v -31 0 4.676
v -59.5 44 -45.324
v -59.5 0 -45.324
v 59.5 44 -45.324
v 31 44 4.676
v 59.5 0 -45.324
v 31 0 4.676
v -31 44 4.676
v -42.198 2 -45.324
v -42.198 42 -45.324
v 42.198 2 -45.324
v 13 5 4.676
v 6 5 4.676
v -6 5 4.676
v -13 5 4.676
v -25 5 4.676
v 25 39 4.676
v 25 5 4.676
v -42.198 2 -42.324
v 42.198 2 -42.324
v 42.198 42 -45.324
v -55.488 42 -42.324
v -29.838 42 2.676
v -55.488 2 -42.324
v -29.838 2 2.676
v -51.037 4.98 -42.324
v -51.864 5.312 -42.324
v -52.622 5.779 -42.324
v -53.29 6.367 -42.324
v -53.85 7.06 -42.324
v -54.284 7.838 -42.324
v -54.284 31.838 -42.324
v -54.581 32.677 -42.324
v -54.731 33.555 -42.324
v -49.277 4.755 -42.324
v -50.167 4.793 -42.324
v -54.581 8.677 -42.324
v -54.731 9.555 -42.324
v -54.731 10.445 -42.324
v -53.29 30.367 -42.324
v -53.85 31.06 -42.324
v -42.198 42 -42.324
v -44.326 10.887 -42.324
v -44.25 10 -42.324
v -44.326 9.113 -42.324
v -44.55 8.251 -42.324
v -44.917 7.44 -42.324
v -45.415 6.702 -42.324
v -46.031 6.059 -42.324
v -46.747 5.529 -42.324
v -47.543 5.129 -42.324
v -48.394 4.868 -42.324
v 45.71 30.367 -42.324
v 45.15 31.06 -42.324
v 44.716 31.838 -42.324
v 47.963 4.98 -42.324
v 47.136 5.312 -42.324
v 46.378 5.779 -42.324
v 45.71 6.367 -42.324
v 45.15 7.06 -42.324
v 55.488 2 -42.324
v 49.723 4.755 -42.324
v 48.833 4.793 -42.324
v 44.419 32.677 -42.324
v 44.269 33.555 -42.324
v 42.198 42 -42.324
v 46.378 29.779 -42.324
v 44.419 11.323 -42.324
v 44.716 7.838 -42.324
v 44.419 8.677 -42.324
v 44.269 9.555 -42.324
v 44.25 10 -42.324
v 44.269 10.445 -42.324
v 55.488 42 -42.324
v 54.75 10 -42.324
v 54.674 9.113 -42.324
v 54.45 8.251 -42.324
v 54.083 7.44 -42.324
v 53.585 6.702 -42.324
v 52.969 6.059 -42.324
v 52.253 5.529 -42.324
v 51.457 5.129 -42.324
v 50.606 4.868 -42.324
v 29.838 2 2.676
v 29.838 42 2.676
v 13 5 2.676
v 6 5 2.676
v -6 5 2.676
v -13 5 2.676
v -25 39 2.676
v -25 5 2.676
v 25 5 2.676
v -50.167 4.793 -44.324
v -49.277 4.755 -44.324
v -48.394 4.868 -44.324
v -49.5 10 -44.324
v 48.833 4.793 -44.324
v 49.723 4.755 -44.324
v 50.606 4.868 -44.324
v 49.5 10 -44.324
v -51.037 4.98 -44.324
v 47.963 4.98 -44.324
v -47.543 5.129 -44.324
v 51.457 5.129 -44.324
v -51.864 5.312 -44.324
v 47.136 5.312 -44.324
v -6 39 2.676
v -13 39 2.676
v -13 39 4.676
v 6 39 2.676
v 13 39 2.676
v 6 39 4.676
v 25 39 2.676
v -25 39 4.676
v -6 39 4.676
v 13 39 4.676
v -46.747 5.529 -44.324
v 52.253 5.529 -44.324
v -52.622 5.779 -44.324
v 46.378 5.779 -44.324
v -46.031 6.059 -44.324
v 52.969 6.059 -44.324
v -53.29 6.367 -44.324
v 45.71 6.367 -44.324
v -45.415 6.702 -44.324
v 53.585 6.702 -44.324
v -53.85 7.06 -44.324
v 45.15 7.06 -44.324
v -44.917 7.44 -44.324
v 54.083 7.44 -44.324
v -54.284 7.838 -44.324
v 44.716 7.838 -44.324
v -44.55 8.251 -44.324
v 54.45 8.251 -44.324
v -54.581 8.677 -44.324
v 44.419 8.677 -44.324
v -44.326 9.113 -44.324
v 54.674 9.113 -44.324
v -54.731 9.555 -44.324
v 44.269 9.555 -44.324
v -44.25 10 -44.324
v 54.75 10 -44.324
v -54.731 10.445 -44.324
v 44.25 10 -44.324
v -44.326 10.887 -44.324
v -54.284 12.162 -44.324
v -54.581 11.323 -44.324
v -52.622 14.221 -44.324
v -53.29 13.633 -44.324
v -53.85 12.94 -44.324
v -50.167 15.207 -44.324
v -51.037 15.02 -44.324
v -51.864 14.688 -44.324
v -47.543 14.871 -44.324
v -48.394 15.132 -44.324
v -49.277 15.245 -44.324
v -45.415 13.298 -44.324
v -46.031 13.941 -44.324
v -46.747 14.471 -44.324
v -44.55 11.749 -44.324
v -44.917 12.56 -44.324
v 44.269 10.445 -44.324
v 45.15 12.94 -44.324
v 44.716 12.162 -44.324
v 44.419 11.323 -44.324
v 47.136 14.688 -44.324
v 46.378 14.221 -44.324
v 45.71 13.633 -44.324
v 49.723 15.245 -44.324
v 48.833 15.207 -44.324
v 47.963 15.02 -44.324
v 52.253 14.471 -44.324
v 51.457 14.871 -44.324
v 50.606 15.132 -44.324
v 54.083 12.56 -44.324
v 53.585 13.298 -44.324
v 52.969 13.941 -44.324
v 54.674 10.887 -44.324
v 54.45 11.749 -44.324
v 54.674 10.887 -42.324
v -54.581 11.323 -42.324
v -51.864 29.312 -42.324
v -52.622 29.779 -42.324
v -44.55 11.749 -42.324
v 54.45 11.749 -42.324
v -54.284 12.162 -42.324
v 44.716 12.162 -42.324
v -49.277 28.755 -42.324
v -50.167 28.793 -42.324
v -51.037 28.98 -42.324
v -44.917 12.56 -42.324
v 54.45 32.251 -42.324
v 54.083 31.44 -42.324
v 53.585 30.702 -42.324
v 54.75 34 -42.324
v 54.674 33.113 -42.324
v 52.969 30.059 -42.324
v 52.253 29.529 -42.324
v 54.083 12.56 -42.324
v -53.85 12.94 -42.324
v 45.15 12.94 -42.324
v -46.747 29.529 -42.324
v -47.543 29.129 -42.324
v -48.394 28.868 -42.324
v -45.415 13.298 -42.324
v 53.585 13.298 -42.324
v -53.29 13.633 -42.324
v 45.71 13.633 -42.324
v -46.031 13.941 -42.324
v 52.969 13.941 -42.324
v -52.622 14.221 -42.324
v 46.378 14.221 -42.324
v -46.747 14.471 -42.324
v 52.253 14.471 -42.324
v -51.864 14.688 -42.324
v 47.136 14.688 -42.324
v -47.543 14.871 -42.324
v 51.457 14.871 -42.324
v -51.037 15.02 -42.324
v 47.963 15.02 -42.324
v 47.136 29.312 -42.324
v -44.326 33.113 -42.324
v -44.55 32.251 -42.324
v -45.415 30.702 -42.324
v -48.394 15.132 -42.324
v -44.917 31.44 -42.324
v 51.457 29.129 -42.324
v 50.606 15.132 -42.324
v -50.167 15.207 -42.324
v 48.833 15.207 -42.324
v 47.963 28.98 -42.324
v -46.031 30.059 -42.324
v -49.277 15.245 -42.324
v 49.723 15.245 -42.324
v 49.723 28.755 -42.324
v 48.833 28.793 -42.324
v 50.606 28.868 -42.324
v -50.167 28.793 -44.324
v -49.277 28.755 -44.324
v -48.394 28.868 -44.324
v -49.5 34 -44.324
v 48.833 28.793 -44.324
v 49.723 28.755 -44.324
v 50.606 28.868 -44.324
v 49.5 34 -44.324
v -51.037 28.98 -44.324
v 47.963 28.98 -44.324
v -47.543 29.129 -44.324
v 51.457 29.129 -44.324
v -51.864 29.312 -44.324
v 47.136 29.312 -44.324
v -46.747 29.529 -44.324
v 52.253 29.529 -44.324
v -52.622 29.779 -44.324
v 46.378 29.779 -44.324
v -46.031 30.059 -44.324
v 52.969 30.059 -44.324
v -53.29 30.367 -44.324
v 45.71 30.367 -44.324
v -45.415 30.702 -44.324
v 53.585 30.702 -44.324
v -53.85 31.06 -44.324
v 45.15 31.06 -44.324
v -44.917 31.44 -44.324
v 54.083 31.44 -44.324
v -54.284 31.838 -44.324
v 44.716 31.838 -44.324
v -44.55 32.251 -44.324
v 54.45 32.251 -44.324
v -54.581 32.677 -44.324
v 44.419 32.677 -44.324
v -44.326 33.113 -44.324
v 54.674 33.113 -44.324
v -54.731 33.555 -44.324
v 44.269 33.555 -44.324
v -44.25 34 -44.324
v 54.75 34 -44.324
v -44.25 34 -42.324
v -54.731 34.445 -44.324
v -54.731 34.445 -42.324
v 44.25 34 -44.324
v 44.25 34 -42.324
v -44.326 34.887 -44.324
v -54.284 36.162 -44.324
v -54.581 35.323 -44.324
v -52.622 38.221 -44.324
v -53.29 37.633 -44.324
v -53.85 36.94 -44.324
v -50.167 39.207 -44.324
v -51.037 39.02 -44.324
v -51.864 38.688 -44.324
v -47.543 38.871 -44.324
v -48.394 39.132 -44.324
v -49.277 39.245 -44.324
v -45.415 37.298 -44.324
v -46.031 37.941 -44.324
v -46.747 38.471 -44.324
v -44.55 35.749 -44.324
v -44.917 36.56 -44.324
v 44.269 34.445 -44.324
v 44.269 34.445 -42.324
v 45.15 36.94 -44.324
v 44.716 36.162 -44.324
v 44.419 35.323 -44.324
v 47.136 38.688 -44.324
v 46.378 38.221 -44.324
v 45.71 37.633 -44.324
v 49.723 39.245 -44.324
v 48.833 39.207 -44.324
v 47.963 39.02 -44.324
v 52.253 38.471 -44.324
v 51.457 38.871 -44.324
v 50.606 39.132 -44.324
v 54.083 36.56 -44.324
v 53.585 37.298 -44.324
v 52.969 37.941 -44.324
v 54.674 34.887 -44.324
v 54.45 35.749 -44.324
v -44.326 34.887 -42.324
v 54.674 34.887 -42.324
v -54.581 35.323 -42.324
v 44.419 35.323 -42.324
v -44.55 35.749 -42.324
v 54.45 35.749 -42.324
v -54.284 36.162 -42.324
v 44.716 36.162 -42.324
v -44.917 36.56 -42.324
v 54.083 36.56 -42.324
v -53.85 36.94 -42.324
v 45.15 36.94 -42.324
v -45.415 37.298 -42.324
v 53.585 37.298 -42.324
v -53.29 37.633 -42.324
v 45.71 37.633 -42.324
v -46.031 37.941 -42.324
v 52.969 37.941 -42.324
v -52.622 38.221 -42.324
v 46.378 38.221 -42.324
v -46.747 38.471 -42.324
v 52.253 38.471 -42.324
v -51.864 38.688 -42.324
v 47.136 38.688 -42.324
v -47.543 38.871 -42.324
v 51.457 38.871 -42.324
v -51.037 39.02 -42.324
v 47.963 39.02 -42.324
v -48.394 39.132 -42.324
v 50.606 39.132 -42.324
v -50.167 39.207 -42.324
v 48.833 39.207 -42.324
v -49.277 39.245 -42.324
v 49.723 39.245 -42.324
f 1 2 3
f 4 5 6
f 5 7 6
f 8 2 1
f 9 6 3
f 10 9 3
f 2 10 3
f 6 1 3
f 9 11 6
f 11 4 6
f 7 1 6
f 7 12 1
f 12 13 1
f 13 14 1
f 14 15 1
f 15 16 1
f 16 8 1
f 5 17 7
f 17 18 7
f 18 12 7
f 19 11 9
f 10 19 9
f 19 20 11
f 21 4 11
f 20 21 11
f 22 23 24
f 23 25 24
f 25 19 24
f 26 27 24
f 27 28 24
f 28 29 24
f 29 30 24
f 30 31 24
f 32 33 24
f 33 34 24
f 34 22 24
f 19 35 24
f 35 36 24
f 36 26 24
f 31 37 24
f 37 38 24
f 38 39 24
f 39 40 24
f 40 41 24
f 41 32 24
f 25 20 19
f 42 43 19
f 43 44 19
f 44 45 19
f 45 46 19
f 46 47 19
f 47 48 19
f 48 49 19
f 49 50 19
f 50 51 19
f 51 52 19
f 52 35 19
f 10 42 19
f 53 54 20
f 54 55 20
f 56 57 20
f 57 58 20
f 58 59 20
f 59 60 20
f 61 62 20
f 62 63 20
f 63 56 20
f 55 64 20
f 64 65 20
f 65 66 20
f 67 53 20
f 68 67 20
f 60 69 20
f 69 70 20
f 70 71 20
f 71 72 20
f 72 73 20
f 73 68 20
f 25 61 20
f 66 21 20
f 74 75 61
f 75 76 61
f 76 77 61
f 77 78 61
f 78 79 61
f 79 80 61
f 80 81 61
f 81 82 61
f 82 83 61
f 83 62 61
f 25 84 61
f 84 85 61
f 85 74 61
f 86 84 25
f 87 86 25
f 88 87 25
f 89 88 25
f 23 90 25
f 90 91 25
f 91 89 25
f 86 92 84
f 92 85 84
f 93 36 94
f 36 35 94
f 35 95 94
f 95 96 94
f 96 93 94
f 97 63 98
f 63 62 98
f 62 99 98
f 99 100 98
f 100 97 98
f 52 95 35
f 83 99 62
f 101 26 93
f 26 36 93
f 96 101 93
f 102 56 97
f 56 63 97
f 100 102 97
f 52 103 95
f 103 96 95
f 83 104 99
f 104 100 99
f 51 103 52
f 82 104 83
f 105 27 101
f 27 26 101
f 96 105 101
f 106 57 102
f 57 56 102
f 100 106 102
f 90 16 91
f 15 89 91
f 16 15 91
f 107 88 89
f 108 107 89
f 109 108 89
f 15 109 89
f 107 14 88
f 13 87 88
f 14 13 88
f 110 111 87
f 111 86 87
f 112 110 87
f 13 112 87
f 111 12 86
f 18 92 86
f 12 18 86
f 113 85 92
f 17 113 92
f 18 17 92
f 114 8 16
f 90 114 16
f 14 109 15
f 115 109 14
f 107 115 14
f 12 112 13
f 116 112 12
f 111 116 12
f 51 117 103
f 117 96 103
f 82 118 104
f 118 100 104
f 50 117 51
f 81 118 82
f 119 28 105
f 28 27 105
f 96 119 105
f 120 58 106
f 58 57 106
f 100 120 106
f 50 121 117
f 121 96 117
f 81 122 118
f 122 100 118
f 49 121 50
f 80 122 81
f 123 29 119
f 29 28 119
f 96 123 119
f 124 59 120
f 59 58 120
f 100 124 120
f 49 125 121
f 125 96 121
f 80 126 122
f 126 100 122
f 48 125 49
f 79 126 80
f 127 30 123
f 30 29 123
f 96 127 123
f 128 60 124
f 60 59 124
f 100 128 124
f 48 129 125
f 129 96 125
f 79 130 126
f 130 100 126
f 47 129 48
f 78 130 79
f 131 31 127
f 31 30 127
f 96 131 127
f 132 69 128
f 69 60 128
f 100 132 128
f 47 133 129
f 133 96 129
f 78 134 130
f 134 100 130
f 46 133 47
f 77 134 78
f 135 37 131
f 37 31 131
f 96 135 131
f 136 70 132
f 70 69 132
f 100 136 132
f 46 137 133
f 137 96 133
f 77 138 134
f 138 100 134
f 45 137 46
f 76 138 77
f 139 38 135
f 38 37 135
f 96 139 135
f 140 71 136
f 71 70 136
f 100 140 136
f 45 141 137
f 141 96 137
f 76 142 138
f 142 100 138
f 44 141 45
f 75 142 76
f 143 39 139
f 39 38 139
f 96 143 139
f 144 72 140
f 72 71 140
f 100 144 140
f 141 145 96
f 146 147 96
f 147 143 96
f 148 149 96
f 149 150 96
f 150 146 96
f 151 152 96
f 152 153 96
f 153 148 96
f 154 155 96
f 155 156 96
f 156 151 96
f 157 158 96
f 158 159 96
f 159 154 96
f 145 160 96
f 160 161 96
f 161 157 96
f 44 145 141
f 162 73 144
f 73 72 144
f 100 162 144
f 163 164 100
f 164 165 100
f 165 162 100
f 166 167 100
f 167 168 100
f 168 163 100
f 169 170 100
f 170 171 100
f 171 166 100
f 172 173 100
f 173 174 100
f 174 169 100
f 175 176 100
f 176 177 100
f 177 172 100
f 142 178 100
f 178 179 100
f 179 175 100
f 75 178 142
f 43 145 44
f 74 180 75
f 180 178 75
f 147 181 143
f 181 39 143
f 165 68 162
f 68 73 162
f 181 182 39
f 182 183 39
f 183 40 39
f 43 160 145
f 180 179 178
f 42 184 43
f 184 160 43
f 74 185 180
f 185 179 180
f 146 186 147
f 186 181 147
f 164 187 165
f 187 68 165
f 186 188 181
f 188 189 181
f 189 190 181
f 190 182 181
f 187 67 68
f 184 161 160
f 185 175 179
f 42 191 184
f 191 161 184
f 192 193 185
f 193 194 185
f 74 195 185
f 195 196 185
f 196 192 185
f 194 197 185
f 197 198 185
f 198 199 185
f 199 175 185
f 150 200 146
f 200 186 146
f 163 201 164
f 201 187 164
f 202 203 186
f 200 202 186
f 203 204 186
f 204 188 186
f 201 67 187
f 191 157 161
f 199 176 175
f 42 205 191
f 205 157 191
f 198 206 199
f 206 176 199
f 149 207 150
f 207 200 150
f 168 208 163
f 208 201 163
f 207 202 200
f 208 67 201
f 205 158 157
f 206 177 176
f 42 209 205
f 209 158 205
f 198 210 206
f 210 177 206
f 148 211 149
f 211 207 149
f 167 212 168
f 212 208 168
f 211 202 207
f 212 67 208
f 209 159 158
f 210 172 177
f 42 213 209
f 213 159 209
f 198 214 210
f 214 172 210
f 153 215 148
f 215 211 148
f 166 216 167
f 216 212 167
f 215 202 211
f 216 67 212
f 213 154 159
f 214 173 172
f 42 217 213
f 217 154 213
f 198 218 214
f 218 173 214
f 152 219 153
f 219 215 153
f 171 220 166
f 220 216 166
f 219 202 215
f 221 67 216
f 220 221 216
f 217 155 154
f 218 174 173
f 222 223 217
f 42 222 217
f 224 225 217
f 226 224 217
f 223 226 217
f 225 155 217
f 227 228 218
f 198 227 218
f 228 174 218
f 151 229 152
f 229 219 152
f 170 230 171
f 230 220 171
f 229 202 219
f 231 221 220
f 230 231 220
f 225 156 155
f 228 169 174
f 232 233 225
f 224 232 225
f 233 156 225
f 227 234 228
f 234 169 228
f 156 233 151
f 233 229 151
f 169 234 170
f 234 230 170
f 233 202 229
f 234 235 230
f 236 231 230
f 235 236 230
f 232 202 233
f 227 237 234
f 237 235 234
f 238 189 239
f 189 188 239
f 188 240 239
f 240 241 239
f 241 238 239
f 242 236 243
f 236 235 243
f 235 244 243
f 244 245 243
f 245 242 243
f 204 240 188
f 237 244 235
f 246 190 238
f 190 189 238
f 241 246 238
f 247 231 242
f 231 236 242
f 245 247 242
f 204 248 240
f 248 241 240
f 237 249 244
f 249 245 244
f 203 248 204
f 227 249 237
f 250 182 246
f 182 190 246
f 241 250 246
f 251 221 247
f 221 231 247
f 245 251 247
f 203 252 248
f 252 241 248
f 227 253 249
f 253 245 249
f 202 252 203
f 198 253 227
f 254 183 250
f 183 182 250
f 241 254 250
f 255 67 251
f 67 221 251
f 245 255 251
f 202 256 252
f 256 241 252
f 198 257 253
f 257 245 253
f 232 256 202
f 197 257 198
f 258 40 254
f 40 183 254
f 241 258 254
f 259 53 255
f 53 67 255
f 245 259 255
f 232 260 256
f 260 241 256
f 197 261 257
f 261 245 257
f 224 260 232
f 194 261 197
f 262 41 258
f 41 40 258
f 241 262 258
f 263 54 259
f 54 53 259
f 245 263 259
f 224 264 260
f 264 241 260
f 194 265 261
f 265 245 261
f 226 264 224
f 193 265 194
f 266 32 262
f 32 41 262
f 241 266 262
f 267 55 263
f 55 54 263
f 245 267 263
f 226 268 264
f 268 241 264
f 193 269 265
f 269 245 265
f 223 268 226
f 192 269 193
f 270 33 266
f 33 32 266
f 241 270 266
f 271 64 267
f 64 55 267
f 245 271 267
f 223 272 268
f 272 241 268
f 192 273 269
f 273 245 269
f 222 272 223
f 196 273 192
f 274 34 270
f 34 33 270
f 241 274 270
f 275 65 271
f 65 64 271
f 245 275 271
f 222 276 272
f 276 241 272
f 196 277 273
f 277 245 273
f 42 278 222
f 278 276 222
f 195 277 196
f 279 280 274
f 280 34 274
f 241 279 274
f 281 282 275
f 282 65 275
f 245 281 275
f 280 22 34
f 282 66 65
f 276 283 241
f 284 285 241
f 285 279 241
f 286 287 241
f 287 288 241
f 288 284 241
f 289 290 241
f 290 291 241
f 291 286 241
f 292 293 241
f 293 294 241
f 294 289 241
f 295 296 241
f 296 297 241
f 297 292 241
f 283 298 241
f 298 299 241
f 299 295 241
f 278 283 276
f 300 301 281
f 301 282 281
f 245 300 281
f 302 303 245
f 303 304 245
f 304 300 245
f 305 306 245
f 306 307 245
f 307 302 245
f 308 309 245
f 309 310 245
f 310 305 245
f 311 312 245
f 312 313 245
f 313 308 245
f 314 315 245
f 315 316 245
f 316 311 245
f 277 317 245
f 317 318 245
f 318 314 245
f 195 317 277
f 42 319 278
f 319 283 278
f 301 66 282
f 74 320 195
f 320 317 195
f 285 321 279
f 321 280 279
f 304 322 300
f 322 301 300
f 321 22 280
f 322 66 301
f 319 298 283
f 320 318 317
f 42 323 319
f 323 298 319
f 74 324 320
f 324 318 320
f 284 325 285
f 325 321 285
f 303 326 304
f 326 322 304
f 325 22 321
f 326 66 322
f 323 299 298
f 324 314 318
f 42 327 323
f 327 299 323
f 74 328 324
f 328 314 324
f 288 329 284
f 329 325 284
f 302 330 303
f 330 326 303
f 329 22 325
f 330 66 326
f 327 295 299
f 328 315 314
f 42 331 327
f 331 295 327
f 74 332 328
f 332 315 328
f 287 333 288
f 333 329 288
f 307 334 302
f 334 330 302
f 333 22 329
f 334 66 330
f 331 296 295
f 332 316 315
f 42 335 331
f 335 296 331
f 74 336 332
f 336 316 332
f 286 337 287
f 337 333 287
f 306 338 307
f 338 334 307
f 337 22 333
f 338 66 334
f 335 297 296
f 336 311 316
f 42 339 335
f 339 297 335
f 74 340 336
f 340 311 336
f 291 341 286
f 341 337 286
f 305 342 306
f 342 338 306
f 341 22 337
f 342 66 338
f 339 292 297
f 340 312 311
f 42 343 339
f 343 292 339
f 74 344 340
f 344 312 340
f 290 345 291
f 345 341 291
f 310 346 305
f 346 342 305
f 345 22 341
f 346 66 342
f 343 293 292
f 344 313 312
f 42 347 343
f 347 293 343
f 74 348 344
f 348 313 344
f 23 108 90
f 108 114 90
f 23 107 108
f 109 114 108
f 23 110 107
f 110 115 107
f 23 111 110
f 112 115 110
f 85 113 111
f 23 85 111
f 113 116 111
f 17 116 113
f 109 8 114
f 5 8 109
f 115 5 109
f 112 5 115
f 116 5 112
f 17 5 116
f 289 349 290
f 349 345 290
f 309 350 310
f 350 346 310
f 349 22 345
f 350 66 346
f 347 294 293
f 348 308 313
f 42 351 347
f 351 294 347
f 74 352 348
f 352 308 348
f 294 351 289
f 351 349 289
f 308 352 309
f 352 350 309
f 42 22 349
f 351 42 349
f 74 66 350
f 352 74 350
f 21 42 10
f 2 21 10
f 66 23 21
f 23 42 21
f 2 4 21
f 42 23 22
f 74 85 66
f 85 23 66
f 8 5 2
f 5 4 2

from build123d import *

# Parameters (mm, degrees)
EXTRUS_O1_DEPTH = 44
CASCA1_T        = -2
EXTRUS_O2_DEPTH = 40
ESBO_O6_R       = 5.25
EXTRUS_O3_DEPTH = 2
ESBO_O5_R       = 5.25
EXTRUS_O4_DEPTH = 2
ESBO_O7_W       = 12
ESBO_O7_H       = 34
EXTRUS_O5_DEPTH = 2


with BuildPart() as part:
    # Esboço1 → Extrusão1 (new body)
    with BuildSketch(Plane(origin=(0, 0, 0), x_dir=(1, 0, 0), z_dir=(0, 1, 0))):
        Polygon((-59.5, 45.323641576), (-31, -4.676358424), (31, -4.676358424), (59.5, 45.323641576), align=None)
    extrude(amount=EXTRUS_O1_DEPTH)

    # Casca1
    casca1_openings = [part.faces().sort_by_distance(p)[0] for p in [
        (0, 22, -45.323641576),
    ]]
    offset(amount=CASCA1_T, openings=casca1_openings, kind=Kind.INTERSECTION)

    # Esboço4 → Extrusão2 (add)
    with BuildSketch(Plane.XZ.offset(-42)):
        Polygon((-57.197913989, -45.323641576), (-42.197913989, -45.323641576), (-42.197913989, -42.323641576), (-55.487913989, -42.323641576), align=None)
    extrus_o2 = extrude(amount=EXTRUS_O2_DEPTH)

    # Espelhar1: Extrusão2 across plane
    add(extrus_o2.mirror(Plane(origin=(0, 0, 0), x_dir=(0, 0, 1), z_dir=(1, 0, 0))))

    # Esboço6 → Extrusão3 (cut)
    with BuildSketch(Plane.XY.offset(-42.323641576)):
        with Locations((-49.5, 10)):
            Circle(ESBO_O6_R)
    extrus_o3 = extrude(amount=-EXTRUS_O3_DEPTH, mode=Mode.SUBTRACT)

    # Esboço5 → Extrusão4 (cut)
    with BuildSketch(Plane.XY.offset(-42.323641576)):
        with Locations((-49.5, 34)):
            Circle(ESBO_O5_R)
    extrus_o4 = extrude(amount=-EXTRUS_O4_DEPTH, mode=Mode.SUBTRACT)

    # Espelhar2: Extrusão3, Extrusão4 across plane
    add(extrus_o3.mirror(Plane(origin=(0, 0, 0), x_dir=(0, 0, 1), z_dir=(1, 0, 0))), mode=Mode.SUBTRACT)
    add(extrus_o4.mirror(Plane(origin=(0, 0, 0), x_dir=(0, 0, 1), z_dir=(1, 0, 0))), mode=Mode.SUBTRACT)

    # Esboço7 → Extrusão5 (cut)
    with BuildSketch(Plane.XY.offset(4.676358424)):
        with Locations((0, 22)):
            Rectangle(ESBO_O7_W, ESBO_O7_H)
        with Locations((19, 22)):
            Rectangle(ESBO_O7_W, ESBO_O7_H)
        with Locations((-19, 22)):
            Rectangle(ESBO_O7_W, ESBO_O7_H)
    extrude(amount=-EXTRUS_O5_DEPTH, mode=Mode.SUBTRACT)


solid = part.part
